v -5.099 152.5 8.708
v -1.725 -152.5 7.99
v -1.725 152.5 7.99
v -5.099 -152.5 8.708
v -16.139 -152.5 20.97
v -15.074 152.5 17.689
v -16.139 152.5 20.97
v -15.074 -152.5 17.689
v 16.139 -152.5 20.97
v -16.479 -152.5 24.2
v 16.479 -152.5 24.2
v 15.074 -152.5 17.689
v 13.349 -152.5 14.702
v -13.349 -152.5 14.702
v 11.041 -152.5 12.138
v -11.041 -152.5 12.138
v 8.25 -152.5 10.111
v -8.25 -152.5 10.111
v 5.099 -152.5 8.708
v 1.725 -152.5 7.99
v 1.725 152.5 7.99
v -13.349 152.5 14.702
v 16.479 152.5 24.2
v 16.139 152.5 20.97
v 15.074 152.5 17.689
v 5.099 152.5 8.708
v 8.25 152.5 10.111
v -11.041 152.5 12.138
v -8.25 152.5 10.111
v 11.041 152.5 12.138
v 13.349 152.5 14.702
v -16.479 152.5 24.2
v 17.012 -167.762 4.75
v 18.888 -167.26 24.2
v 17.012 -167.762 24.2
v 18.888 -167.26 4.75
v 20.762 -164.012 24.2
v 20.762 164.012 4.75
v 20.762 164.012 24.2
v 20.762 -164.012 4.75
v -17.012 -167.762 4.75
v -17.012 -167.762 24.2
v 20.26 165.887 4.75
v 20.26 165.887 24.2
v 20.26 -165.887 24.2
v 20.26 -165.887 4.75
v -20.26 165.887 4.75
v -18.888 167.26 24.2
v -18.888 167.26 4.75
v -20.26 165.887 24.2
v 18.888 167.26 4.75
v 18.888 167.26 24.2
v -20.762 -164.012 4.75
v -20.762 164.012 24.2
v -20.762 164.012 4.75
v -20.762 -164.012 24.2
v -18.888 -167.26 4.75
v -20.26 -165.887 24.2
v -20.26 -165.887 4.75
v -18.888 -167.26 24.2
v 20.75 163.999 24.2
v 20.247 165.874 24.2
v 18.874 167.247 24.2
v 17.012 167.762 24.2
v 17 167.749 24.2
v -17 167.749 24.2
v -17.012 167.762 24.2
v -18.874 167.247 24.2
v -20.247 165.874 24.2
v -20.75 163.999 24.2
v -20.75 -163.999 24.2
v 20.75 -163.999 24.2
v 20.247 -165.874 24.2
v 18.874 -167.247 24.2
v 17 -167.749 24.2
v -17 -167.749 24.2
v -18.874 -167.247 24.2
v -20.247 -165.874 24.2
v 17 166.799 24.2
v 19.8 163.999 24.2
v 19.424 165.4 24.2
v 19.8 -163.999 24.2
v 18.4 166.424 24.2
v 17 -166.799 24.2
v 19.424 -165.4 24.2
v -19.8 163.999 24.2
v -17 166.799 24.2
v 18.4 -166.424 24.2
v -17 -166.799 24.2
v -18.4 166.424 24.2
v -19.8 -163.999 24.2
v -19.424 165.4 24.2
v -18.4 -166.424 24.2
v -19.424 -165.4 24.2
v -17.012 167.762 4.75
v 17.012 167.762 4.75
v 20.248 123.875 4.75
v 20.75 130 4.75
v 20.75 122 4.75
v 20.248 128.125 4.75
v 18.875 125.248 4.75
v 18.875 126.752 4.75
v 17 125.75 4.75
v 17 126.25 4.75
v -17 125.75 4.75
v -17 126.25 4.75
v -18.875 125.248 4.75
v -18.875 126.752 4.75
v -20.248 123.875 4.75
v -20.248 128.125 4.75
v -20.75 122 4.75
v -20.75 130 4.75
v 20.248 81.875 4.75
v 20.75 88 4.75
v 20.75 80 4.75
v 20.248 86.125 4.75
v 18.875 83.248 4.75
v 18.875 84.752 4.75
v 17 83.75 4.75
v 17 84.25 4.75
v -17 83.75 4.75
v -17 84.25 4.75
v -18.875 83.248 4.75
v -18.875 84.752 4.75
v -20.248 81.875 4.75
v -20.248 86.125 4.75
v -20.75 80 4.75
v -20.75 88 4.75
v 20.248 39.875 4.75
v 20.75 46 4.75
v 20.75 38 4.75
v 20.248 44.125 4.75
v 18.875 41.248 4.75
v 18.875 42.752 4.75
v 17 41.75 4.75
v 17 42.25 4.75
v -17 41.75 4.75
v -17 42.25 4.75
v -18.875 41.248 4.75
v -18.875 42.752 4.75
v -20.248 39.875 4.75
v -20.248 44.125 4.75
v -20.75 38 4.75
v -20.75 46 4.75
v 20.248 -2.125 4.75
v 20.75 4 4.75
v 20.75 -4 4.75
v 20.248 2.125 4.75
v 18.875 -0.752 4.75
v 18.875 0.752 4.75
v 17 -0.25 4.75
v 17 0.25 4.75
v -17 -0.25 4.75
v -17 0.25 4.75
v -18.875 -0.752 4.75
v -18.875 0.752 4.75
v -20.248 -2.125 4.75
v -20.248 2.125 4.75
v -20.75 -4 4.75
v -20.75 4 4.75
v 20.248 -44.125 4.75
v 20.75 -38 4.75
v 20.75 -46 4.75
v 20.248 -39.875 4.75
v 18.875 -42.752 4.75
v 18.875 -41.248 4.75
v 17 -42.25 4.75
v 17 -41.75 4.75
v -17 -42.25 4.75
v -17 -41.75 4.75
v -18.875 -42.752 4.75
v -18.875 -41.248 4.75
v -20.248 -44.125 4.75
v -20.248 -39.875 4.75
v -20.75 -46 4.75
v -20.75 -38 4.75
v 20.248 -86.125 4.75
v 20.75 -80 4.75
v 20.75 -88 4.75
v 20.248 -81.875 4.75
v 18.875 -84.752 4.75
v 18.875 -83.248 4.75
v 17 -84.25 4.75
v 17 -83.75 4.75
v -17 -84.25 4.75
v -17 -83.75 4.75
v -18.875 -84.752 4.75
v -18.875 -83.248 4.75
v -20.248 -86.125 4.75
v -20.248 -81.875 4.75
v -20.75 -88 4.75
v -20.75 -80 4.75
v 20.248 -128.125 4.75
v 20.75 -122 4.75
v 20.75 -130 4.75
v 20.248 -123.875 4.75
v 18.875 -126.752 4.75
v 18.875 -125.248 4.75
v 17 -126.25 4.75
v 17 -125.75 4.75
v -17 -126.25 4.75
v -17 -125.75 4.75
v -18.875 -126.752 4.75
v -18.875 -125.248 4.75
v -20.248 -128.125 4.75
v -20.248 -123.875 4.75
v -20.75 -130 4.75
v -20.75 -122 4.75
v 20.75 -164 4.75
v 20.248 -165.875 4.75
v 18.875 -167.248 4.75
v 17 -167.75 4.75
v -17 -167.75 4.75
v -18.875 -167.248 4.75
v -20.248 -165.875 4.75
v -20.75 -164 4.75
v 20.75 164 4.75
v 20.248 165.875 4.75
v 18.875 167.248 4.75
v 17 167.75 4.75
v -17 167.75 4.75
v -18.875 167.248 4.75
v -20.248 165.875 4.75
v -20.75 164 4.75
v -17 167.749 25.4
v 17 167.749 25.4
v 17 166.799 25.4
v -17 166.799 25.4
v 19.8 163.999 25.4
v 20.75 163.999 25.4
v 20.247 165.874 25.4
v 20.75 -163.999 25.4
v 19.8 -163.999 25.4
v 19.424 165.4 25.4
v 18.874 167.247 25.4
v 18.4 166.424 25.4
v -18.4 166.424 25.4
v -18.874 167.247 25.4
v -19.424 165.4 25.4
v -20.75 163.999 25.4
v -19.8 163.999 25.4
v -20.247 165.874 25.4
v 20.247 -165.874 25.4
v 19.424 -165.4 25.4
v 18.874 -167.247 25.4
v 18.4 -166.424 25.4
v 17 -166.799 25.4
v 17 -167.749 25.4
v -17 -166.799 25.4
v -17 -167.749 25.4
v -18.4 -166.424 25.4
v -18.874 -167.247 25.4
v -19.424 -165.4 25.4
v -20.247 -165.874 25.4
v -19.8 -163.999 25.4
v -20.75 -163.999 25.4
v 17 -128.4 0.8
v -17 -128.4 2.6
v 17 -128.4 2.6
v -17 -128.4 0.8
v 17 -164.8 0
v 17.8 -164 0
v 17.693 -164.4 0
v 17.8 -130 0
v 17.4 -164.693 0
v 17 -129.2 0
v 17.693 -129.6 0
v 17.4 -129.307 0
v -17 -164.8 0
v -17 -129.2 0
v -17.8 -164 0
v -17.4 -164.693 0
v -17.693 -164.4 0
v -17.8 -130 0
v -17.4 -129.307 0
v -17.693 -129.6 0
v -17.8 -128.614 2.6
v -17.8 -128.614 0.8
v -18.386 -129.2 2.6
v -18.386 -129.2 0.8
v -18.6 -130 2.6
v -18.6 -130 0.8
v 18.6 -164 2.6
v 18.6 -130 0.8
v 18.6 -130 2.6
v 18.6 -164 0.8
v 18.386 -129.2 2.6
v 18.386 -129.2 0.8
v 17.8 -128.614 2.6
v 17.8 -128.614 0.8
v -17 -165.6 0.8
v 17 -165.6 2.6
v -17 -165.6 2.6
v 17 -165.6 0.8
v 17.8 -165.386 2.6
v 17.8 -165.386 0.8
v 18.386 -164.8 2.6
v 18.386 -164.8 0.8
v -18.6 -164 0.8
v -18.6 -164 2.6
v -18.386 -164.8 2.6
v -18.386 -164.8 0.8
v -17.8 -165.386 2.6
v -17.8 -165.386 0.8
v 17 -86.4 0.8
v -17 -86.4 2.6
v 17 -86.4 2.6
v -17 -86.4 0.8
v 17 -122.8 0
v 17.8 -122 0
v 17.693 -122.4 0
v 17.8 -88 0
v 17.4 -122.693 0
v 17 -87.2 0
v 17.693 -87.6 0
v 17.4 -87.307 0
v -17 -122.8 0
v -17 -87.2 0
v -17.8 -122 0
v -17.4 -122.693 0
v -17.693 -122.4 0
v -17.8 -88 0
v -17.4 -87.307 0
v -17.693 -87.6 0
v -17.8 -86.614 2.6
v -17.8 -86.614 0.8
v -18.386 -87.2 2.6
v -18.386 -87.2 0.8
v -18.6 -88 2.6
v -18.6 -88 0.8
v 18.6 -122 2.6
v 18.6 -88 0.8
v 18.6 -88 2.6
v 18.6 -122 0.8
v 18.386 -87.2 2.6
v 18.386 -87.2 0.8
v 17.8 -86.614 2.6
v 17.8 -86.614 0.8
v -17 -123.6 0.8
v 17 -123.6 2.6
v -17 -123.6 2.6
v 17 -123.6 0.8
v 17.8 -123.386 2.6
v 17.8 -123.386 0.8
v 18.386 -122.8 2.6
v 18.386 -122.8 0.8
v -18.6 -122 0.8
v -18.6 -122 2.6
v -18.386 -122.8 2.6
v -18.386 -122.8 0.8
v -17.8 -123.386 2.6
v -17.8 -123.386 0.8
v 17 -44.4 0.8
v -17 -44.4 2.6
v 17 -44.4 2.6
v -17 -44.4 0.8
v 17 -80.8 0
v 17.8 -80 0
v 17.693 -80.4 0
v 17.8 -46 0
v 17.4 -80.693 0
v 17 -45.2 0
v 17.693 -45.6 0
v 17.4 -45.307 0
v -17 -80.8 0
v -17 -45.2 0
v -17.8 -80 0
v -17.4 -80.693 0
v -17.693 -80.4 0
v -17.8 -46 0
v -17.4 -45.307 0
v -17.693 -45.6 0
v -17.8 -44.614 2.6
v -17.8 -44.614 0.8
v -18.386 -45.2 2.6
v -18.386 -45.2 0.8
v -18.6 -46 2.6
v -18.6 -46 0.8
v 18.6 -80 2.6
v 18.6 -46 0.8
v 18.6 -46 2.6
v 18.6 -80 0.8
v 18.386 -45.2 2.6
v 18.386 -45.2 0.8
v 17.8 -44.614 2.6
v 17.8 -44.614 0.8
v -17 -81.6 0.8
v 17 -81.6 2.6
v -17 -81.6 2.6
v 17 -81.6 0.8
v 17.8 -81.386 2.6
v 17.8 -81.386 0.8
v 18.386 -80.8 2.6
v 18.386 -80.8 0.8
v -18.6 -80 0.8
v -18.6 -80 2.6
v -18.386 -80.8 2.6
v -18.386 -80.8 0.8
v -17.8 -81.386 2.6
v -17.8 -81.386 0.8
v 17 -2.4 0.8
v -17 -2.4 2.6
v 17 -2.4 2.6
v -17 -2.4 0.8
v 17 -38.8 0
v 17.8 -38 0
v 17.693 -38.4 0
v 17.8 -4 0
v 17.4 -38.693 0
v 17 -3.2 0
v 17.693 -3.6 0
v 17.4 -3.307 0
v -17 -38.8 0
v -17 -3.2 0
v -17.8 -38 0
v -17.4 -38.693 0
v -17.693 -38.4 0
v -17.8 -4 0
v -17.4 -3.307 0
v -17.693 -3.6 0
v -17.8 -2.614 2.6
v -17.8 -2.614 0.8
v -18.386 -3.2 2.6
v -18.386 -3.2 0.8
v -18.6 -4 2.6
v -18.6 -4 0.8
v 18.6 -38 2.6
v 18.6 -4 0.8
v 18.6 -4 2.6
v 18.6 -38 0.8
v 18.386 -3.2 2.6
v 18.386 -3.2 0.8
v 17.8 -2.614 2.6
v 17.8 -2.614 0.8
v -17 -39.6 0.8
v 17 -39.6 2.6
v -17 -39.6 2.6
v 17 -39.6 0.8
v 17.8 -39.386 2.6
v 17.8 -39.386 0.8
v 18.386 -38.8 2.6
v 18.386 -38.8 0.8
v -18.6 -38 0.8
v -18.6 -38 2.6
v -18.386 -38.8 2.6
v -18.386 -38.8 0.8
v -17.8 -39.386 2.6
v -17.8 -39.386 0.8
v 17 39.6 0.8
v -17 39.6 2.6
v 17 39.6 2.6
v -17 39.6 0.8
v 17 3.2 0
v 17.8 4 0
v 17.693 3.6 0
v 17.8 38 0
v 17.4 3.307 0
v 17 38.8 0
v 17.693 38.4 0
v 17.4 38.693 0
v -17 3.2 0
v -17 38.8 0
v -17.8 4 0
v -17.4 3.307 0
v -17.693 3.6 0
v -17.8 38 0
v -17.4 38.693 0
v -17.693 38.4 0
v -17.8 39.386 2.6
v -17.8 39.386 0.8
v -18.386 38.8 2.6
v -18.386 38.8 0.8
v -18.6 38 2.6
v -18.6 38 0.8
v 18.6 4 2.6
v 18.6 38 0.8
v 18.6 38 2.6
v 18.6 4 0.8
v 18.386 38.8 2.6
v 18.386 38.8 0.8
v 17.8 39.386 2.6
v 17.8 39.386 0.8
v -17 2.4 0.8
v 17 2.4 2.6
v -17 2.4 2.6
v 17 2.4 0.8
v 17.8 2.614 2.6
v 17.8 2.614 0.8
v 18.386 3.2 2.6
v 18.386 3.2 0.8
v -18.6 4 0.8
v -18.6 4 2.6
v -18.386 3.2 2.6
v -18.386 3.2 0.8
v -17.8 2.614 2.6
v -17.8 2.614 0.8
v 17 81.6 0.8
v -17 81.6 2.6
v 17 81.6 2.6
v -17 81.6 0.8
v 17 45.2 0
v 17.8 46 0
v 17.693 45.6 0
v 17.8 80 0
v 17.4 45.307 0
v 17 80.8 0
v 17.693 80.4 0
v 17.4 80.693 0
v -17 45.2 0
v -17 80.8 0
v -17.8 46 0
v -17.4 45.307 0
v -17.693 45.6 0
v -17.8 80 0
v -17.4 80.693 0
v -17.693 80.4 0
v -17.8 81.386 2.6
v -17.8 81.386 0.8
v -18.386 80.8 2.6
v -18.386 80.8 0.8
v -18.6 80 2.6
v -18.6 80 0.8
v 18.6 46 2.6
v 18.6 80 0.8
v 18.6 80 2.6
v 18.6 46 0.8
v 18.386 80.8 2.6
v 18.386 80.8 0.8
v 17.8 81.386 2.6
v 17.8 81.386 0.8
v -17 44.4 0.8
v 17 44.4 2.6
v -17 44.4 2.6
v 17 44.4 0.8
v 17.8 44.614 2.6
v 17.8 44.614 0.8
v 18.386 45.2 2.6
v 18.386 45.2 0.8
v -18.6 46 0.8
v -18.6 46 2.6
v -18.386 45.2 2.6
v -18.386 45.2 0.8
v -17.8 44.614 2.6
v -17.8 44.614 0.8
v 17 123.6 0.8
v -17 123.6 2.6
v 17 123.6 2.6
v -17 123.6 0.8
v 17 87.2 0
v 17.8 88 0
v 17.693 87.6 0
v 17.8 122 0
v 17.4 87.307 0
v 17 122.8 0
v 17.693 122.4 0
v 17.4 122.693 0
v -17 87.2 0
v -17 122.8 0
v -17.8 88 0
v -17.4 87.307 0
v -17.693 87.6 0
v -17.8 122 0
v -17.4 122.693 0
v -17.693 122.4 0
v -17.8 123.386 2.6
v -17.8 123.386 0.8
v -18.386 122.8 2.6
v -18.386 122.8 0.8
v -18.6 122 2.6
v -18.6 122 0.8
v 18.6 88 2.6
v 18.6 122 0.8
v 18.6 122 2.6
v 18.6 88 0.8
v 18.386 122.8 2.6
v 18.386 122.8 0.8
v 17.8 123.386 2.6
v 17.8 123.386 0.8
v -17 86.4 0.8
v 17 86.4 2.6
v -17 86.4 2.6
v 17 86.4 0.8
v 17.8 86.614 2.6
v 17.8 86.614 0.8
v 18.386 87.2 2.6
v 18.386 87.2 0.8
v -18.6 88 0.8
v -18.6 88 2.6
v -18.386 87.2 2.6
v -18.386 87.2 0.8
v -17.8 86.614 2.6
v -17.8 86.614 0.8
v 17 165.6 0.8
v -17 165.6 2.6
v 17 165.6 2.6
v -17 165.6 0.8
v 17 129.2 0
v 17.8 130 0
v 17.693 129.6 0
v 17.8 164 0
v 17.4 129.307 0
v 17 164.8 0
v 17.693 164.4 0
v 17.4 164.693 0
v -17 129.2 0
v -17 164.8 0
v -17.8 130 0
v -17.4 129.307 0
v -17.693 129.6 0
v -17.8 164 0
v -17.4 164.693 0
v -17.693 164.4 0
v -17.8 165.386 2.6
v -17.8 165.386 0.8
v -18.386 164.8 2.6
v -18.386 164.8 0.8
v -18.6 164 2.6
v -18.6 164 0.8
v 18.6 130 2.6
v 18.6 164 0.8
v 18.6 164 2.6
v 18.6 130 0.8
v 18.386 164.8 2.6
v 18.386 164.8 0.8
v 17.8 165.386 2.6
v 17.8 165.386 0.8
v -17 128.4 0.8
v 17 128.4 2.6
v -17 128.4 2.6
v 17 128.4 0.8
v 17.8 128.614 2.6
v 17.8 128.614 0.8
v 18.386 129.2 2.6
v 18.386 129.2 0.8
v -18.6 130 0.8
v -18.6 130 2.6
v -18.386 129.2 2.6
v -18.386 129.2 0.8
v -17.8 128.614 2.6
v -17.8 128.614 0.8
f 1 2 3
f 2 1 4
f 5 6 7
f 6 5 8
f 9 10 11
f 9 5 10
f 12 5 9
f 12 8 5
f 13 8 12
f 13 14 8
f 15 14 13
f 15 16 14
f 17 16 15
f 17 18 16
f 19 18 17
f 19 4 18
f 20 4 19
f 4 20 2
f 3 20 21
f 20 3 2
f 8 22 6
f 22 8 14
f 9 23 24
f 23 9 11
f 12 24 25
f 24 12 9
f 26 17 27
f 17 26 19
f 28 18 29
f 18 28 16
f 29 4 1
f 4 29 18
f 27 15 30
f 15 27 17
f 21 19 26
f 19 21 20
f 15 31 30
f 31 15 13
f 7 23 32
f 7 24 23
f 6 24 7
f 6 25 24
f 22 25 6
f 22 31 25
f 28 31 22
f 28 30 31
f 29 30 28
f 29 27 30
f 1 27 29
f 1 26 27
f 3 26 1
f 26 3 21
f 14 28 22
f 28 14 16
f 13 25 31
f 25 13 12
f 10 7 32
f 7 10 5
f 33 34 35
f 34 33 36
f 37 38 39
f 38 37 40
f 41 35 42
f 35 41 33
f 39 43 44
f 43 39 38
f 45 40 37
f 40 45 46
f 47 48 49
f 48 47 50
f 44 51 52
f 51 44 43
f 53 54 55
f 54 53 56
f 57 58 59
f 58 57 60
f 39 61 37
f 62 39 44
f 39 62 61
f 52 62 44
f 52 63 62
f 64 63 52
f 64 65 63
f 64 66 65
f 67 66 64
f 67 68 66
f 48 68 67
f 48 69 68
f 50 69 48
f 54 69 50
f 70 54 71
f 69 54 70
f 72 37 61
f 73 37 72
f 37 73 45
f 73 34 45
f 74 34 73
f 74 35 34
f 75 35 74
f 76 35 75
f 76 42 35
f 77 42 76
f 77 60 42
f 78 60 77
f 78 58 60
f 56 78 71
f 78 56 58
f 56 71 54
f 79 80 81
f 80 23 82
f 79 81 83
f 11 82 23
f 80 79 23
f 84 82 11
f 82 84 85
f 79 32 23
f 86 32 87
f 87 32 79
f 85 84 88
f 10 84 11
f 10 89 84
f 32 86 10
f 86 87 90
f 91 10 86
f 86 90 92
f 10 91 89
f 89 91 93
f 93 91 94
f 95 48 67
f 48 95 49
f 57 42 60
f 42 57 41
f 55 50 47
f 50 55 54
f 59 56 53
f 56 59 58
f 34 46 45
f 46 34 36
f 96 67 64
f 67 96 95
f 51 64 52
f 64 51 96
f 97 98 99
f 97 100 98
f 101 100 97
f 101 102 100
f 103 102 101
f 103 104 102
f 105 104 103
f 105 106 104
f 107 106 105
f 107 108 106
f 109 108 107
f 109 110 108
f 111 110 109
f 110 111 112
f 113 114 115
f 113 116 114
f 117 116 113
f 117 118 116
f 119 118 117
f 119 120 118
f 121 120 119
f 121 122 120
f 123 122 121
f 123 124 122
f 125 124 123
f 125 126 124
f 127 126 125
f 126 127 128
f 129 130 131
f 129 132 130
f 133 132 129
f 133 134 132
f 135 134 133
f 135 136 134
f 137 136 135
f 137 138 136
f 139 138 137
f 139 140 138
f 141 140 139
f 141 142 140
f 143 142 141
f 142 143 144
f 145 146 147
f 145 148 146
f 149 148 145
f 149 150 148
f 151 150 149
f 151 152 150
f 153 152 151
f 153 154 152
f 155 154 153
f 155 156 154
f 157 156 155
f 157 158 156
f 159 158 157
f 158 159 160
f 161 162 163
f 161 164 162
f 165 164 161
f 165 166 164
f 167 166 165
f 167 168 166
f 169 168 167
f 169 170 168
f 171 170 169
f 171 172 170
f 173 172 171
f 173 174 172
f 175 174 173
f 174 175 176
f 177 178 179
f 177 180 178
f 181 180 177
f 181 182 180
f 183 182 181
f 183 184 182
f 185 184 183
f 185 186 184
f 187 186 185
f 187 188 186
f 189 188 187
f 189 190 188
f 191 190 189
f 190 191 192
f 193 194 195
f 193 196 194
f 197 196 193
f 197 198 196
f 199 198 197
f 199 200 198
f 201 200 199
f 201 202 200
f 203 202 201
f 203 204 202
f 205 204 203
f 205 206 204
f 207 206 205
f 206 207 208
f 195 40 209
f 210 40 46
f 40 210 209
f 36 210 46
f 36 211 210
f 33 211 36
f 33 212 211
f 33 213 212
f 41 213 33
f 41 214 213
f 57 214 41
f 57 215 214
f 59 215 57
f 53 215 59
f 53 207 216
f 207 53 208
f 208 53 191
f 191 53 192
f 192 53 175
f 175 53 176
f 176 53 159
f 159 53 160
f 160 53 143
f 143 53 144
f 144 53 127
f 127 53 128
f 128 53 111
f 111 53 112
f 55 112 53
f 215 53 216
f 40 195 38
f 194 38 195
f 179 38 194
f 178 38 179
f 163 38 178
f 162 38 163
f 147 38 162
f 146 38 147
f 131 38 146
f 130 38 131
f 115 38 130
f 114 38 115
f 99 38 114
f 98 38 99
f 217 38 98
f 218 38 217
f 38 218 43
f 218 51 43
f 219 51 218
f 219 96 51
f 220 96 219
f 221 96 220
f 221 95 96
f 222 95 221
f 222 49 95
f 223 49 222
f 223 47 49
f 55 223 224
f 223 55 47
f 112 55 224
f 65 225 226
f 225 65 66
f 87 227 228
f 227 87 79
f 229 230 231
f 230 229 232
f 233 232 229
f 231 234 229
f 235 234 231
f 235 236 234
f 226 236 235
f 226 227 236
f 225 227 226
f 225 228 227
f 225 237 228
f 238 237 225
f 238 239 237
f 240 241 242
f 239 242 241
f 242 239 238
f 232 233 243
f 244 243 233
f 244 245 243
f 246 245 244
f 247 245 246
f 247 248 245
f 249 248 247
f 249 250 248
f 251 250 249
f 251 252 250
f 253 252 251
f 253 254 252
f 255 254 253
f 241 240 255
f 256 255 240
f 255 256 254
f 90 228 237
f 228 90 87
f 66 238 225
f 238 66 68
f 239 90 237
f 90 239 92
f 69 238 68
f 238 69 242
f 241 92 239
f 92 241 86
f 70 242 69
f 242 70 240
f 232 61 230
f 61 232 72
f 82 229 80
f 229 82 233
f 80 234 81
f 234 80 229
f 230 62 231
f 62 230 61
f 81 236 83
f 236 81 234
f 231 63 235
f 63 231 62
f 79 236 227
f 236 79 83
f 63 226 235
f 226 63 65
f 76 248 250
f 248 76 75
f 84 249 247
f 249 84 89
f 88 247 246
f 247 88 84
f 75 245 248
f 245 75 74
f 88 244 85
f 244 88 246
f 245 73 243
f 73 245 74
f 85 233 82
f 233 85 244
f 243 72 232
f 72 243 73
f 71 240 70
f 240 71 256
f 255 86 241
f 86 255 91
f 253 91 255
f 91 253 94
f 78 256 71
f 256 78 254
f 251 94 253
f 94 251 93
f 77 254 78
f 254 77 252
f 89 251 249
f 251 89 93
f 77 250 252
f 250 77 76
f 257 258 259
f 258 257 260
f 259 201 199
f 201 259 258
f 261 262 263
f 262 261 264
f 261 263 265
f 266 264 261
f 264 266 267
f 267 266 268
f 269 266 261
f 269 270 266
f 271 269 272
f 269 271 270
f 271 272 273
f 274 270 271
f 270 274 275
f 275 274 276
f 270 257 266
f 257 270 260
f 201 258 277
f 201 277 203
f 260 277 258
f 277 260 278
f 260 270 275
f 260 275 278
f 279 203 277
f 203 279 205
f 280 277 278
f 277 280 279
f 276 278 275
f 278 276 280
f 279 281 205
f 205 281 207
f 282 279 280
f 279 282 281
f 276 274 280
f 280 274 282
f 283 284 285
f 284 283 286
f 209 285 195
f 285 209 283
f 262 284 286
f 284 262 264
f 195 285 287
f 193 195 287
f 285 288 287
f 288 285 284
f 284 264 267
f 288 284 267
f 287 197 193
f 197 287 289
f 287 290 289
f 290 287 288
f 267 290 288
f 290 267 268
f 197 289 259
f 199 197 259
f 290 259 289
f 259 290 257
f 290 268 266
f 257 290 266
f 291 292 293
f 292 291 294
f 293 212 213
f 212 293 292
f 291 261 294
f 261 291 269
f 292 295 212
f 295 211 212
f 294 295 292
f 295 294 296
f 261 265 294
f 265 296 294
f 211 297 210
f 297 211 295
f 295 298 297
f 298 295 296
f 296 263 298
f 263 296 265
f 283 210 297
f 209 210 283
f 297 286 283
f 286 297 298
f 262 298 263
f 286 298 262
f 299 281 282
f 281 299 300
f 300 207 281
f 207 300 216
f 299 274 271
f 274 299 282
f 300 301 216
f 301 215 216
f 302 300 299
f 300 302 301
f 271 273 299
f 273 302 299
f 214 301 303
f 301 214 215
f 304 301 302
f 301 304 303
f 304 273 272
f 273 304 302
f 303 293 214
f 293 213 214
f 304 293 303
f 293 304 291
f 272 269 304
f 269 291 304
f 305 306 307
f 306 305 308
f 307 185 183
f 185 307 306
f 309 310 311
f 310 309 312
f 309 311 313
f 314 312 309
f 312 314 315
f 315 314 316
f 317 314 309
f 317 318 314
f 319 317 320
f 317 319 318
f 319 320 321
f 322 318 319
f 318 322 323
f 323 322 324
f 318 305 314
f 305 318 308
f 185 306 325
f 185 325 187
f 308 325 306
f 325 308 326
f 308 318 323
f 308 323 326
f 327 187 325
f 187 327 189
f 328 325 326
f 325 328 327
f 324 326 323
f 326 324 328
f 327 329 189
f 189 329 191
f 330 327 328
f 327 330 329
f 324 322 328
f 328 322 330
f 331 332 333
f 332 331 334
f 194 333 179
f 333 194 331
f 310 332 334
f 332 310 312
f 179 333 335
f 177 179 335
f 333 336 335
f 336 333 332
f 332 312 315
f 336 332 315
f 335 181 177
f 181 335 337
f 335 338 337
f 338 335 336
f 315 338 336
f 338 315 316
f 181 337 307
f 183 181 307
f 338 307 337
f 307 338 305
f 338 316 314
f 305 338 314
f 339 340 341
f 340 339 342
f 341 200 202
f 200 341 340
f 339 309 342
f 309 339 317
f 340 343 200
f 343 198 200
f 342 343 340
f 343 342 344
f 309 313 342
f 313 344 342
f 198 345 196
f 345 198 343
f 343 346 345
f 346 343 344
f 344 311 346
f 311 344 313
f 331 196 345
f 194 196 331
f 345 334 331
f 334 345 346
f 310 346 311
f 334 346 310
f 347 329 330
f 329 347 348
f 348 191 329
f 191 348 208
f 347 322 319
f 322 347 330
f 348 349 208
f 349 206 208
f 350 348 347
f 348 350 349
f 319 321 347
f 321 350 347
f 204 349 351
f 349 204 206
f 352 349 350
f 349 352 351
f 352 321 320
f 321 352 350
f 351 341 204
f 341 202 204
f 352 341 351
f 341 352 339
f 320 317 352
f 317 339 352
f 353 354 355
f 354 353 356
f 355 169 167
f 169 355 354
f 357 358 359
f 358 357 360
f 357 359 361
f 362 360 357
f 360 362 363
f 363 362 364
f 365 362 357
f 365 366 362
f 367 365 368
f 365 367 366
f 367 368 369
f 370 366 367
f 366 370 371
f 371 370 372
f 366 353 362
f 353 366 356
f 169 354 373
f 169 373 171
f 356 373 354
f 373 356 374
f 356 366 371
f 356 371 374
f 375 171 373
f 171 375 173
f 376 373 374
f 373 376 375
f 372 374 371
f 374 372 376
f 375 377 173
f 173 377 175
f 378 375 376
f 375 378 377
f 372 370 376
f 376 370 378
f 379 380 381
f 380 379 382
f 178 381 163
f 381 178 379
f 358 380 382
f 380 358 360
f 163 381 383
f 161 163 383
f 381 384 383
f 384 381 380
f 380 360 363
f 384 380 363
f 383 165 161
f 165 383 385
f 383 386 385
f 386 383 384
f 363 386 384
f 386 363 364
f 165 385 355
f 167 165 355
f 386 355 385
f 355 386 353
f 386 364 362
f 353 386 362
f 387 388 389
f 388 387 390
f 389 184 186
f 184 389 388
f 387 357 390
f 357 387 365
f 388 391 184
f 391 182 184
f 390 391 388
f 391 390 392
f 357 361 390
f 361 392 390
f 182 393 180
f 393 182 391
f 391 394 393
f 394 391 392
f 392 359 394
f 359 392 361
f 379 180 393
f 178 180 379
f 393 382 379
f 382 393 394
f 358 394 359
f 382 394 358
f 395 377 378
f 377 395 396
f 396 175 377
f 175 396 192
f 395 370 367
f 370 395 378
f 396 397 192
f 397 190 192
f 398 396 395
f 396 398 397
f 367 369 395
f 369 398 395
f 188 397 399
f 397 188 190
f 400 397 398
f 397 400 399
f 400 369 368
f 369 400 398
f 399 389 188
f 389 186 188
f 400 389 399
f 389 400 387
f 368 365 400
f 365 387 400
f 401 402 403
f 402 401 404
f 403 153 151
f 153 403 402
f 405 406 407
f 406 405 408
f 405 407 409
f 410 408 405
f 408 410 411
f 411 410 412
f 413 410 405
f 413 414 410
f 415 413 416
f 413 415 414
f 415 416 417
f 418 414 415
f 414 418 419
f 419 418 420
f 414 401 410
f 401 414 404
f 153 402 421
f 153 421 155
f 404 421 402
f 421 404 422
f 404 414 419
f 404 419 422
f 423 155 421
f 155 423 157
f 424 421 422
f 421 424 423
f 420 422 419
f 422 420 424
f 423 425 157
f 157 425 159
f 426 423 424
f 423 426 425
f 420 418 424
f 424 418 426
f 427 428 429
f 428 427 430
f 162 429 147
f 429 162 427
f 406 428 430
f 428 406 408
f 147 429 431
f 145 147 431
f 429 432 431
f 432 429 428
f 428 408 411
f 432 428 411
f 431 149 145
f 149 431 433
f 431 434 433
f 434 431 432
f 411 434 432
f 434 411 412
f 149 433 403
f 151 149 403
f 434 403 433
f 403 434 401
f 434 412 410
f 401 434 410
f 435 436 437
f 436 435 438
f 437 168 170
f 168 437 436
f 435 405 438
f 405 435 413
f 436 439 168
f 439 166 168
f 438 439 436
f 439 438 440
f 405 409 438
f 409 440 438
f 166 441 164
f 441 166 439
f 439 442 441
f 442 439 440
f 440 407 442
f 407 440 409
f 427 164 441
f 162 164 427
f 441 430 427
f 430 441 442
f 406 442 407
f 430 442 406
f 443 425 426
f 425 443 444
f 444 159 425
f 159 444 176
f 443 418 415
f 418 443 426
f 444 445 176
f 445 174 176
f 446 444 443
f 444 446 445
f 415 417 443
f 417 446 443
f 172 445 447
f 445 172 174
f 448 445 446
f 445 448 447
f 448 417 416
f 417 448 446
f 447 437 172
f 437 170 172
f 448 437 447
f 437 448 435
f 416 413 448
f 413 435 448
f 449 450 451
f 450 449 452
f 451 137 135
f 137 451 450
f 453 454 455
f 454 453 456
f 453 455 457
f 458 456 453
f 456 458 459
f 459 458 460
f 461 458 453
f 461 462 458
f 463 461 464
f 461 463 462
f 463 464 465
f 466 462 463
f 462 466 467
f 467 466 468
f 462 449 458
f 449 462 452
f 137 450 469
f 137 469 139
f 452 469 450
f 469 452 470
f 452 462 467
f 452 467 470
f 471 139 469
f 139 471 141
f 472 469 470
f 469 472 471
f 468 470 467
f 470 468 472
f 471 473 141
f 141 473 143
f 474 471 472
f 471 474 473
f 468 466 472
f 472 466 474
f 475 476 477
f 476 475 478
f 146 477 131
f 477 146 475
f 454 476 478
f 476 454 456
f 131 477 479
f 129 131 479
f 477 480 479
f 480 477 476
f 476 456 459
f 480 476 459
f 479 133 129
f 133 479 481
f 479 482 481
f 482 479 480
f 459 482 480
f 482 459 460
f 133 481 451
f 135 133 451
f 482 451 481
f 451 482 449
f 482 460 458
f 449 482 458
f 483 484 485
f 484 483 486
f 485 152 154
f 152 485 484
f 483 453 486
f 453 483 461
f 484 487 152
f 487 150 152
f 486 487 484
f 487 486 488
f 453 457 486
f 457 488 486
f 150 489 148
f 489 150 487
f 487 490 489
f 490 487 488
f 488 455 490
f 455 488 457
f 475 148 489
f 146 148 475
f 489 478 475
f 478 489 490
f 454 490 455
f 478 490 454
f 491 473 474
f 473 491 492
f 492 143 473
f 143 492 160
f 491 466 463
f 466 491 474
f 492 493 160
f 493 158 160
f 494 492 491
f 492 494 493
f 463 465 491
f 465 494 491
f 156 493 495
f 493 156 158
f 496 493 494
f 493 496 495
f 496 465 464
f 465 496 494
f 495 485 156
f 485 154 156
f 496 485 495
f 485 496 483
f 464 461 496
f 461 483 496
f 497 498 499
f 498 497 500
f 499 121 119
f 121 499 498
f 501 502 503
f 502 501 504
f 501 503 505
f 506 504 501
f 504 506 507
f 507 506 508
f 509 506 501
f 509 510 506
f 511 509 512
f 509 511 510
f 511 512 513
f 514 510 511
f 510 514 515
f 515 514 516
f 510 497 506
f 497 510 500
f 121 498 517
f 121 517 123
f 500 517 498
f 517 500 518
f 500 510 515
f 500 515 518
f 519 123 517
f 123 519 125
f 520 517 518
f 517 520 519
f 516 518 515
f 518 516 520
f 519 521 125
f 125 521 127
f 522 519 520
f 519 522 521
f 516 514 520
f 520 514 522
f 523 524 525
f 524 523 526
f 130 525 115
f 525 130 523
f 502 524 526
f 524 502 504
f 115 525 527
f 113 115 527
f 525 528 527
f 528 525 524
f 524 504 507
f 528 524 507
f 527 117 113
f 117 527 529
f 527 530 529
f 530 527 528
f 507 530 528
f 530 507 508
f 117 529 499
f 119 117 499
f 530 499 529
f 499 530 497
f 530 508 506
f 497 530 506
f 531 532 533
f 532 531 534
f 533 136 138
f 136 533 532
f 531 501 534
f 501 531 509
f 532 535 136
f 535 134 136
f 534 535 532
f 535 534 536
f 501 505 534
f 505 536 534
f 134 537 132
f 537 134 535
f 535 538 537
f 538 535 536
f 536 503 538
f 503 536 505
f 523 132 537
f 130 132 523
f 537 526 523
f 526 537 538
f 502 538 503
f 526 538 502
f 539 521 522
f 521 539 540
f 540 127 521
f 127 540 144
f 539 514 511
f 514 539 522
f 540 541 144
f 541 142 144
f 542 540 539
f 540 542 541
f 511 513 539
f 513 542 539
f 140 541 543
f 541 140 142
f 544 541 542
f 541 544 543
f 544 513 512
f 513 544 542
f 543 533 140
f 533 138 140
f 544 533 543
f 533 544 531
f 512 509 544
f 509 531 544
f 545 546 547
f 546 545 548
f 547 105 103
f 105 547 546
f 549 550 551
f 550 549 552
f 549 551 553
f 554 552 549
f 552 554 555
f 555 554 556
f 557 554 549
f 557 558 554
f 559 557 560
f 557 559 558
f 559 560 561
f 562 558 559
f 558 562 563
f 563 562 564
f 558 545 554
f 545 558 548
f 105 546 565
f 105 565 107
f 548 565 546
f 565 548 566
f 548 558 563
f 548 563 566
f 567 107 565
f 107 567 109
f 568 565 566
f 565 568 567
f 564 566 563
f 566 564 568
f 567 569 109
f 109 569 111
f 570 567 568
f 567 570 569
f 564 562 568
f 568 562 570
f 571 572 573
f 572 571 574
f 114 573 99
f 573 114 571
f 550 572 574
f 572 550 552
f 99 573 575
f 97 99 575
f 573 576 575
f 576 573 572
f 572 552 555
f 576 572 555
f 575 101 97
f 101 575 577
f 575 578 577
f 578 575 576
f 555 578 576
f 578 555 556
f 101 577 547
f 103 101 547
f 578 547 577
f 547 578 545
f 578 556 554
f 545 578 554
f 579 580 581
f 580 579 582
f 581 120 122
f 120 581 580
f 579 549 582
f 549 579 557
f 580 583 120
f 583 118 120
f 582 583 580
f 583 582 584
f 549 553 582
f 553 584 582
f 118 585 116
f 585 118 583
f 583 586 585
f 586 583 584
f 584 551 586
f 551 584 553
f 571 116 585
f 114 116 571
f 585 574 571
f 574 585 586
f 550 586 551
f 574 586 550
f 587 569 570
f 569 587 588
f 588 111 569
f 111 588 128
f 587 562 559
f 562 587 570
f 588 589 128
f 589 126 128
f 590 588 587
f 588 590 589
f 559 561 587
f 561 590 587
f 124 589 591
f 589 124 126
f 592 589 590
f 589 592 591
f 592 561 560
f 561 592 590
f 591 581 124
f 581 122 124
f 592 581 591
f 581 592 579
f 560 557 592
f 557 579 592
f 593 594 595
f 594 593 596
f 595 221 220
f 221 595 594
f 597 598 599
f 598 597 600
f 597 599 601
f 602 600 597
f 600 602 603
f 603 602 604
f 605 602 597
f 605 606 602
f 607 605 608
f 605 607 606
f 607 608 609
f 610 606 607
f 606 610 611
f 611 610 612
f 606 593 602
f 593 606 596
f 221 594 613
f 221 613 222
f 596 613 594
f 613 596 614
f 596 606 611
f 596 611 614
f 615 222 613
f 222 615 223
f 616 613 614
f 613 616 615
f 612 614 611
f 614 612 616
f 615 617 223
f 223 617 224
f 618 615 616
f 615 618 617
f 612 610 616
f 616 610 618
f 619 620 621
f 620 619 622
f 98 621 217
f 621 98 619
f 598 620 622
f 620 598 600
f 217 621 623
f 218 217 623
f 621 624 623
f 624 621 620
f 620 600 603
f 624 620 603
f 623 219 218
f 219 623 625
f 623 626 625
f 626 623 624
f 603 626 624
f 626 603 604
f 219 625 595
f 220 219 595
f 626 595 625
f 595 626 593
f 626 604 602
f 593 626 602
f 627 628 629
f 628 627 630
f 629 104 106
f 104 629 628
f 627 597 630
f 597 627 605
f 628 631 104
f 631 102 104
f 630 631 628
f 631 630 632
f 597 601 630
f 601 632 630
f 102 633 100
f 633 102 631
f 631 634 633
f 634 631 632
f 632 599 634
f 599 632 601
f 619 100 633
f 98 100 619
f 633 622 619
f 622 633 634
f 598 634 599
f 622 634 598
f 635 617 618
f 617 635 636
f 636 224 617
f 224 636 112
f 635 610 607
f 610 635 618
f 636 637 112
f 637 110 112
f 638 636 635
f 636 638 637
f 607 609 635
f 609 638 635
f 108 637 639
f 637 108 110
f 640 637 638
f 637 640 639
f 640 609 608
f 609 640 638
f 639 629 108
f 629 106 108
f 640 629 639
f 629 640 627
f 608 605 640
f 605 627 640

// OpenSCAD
use <entrypoint.scad>

custom_bin(gridx = 1, gridy = 8, gridz = 3, cdivx=1, cdivy=1, divy=0, divx=0, cd=33, height_internal=0, c_depth=1); 
